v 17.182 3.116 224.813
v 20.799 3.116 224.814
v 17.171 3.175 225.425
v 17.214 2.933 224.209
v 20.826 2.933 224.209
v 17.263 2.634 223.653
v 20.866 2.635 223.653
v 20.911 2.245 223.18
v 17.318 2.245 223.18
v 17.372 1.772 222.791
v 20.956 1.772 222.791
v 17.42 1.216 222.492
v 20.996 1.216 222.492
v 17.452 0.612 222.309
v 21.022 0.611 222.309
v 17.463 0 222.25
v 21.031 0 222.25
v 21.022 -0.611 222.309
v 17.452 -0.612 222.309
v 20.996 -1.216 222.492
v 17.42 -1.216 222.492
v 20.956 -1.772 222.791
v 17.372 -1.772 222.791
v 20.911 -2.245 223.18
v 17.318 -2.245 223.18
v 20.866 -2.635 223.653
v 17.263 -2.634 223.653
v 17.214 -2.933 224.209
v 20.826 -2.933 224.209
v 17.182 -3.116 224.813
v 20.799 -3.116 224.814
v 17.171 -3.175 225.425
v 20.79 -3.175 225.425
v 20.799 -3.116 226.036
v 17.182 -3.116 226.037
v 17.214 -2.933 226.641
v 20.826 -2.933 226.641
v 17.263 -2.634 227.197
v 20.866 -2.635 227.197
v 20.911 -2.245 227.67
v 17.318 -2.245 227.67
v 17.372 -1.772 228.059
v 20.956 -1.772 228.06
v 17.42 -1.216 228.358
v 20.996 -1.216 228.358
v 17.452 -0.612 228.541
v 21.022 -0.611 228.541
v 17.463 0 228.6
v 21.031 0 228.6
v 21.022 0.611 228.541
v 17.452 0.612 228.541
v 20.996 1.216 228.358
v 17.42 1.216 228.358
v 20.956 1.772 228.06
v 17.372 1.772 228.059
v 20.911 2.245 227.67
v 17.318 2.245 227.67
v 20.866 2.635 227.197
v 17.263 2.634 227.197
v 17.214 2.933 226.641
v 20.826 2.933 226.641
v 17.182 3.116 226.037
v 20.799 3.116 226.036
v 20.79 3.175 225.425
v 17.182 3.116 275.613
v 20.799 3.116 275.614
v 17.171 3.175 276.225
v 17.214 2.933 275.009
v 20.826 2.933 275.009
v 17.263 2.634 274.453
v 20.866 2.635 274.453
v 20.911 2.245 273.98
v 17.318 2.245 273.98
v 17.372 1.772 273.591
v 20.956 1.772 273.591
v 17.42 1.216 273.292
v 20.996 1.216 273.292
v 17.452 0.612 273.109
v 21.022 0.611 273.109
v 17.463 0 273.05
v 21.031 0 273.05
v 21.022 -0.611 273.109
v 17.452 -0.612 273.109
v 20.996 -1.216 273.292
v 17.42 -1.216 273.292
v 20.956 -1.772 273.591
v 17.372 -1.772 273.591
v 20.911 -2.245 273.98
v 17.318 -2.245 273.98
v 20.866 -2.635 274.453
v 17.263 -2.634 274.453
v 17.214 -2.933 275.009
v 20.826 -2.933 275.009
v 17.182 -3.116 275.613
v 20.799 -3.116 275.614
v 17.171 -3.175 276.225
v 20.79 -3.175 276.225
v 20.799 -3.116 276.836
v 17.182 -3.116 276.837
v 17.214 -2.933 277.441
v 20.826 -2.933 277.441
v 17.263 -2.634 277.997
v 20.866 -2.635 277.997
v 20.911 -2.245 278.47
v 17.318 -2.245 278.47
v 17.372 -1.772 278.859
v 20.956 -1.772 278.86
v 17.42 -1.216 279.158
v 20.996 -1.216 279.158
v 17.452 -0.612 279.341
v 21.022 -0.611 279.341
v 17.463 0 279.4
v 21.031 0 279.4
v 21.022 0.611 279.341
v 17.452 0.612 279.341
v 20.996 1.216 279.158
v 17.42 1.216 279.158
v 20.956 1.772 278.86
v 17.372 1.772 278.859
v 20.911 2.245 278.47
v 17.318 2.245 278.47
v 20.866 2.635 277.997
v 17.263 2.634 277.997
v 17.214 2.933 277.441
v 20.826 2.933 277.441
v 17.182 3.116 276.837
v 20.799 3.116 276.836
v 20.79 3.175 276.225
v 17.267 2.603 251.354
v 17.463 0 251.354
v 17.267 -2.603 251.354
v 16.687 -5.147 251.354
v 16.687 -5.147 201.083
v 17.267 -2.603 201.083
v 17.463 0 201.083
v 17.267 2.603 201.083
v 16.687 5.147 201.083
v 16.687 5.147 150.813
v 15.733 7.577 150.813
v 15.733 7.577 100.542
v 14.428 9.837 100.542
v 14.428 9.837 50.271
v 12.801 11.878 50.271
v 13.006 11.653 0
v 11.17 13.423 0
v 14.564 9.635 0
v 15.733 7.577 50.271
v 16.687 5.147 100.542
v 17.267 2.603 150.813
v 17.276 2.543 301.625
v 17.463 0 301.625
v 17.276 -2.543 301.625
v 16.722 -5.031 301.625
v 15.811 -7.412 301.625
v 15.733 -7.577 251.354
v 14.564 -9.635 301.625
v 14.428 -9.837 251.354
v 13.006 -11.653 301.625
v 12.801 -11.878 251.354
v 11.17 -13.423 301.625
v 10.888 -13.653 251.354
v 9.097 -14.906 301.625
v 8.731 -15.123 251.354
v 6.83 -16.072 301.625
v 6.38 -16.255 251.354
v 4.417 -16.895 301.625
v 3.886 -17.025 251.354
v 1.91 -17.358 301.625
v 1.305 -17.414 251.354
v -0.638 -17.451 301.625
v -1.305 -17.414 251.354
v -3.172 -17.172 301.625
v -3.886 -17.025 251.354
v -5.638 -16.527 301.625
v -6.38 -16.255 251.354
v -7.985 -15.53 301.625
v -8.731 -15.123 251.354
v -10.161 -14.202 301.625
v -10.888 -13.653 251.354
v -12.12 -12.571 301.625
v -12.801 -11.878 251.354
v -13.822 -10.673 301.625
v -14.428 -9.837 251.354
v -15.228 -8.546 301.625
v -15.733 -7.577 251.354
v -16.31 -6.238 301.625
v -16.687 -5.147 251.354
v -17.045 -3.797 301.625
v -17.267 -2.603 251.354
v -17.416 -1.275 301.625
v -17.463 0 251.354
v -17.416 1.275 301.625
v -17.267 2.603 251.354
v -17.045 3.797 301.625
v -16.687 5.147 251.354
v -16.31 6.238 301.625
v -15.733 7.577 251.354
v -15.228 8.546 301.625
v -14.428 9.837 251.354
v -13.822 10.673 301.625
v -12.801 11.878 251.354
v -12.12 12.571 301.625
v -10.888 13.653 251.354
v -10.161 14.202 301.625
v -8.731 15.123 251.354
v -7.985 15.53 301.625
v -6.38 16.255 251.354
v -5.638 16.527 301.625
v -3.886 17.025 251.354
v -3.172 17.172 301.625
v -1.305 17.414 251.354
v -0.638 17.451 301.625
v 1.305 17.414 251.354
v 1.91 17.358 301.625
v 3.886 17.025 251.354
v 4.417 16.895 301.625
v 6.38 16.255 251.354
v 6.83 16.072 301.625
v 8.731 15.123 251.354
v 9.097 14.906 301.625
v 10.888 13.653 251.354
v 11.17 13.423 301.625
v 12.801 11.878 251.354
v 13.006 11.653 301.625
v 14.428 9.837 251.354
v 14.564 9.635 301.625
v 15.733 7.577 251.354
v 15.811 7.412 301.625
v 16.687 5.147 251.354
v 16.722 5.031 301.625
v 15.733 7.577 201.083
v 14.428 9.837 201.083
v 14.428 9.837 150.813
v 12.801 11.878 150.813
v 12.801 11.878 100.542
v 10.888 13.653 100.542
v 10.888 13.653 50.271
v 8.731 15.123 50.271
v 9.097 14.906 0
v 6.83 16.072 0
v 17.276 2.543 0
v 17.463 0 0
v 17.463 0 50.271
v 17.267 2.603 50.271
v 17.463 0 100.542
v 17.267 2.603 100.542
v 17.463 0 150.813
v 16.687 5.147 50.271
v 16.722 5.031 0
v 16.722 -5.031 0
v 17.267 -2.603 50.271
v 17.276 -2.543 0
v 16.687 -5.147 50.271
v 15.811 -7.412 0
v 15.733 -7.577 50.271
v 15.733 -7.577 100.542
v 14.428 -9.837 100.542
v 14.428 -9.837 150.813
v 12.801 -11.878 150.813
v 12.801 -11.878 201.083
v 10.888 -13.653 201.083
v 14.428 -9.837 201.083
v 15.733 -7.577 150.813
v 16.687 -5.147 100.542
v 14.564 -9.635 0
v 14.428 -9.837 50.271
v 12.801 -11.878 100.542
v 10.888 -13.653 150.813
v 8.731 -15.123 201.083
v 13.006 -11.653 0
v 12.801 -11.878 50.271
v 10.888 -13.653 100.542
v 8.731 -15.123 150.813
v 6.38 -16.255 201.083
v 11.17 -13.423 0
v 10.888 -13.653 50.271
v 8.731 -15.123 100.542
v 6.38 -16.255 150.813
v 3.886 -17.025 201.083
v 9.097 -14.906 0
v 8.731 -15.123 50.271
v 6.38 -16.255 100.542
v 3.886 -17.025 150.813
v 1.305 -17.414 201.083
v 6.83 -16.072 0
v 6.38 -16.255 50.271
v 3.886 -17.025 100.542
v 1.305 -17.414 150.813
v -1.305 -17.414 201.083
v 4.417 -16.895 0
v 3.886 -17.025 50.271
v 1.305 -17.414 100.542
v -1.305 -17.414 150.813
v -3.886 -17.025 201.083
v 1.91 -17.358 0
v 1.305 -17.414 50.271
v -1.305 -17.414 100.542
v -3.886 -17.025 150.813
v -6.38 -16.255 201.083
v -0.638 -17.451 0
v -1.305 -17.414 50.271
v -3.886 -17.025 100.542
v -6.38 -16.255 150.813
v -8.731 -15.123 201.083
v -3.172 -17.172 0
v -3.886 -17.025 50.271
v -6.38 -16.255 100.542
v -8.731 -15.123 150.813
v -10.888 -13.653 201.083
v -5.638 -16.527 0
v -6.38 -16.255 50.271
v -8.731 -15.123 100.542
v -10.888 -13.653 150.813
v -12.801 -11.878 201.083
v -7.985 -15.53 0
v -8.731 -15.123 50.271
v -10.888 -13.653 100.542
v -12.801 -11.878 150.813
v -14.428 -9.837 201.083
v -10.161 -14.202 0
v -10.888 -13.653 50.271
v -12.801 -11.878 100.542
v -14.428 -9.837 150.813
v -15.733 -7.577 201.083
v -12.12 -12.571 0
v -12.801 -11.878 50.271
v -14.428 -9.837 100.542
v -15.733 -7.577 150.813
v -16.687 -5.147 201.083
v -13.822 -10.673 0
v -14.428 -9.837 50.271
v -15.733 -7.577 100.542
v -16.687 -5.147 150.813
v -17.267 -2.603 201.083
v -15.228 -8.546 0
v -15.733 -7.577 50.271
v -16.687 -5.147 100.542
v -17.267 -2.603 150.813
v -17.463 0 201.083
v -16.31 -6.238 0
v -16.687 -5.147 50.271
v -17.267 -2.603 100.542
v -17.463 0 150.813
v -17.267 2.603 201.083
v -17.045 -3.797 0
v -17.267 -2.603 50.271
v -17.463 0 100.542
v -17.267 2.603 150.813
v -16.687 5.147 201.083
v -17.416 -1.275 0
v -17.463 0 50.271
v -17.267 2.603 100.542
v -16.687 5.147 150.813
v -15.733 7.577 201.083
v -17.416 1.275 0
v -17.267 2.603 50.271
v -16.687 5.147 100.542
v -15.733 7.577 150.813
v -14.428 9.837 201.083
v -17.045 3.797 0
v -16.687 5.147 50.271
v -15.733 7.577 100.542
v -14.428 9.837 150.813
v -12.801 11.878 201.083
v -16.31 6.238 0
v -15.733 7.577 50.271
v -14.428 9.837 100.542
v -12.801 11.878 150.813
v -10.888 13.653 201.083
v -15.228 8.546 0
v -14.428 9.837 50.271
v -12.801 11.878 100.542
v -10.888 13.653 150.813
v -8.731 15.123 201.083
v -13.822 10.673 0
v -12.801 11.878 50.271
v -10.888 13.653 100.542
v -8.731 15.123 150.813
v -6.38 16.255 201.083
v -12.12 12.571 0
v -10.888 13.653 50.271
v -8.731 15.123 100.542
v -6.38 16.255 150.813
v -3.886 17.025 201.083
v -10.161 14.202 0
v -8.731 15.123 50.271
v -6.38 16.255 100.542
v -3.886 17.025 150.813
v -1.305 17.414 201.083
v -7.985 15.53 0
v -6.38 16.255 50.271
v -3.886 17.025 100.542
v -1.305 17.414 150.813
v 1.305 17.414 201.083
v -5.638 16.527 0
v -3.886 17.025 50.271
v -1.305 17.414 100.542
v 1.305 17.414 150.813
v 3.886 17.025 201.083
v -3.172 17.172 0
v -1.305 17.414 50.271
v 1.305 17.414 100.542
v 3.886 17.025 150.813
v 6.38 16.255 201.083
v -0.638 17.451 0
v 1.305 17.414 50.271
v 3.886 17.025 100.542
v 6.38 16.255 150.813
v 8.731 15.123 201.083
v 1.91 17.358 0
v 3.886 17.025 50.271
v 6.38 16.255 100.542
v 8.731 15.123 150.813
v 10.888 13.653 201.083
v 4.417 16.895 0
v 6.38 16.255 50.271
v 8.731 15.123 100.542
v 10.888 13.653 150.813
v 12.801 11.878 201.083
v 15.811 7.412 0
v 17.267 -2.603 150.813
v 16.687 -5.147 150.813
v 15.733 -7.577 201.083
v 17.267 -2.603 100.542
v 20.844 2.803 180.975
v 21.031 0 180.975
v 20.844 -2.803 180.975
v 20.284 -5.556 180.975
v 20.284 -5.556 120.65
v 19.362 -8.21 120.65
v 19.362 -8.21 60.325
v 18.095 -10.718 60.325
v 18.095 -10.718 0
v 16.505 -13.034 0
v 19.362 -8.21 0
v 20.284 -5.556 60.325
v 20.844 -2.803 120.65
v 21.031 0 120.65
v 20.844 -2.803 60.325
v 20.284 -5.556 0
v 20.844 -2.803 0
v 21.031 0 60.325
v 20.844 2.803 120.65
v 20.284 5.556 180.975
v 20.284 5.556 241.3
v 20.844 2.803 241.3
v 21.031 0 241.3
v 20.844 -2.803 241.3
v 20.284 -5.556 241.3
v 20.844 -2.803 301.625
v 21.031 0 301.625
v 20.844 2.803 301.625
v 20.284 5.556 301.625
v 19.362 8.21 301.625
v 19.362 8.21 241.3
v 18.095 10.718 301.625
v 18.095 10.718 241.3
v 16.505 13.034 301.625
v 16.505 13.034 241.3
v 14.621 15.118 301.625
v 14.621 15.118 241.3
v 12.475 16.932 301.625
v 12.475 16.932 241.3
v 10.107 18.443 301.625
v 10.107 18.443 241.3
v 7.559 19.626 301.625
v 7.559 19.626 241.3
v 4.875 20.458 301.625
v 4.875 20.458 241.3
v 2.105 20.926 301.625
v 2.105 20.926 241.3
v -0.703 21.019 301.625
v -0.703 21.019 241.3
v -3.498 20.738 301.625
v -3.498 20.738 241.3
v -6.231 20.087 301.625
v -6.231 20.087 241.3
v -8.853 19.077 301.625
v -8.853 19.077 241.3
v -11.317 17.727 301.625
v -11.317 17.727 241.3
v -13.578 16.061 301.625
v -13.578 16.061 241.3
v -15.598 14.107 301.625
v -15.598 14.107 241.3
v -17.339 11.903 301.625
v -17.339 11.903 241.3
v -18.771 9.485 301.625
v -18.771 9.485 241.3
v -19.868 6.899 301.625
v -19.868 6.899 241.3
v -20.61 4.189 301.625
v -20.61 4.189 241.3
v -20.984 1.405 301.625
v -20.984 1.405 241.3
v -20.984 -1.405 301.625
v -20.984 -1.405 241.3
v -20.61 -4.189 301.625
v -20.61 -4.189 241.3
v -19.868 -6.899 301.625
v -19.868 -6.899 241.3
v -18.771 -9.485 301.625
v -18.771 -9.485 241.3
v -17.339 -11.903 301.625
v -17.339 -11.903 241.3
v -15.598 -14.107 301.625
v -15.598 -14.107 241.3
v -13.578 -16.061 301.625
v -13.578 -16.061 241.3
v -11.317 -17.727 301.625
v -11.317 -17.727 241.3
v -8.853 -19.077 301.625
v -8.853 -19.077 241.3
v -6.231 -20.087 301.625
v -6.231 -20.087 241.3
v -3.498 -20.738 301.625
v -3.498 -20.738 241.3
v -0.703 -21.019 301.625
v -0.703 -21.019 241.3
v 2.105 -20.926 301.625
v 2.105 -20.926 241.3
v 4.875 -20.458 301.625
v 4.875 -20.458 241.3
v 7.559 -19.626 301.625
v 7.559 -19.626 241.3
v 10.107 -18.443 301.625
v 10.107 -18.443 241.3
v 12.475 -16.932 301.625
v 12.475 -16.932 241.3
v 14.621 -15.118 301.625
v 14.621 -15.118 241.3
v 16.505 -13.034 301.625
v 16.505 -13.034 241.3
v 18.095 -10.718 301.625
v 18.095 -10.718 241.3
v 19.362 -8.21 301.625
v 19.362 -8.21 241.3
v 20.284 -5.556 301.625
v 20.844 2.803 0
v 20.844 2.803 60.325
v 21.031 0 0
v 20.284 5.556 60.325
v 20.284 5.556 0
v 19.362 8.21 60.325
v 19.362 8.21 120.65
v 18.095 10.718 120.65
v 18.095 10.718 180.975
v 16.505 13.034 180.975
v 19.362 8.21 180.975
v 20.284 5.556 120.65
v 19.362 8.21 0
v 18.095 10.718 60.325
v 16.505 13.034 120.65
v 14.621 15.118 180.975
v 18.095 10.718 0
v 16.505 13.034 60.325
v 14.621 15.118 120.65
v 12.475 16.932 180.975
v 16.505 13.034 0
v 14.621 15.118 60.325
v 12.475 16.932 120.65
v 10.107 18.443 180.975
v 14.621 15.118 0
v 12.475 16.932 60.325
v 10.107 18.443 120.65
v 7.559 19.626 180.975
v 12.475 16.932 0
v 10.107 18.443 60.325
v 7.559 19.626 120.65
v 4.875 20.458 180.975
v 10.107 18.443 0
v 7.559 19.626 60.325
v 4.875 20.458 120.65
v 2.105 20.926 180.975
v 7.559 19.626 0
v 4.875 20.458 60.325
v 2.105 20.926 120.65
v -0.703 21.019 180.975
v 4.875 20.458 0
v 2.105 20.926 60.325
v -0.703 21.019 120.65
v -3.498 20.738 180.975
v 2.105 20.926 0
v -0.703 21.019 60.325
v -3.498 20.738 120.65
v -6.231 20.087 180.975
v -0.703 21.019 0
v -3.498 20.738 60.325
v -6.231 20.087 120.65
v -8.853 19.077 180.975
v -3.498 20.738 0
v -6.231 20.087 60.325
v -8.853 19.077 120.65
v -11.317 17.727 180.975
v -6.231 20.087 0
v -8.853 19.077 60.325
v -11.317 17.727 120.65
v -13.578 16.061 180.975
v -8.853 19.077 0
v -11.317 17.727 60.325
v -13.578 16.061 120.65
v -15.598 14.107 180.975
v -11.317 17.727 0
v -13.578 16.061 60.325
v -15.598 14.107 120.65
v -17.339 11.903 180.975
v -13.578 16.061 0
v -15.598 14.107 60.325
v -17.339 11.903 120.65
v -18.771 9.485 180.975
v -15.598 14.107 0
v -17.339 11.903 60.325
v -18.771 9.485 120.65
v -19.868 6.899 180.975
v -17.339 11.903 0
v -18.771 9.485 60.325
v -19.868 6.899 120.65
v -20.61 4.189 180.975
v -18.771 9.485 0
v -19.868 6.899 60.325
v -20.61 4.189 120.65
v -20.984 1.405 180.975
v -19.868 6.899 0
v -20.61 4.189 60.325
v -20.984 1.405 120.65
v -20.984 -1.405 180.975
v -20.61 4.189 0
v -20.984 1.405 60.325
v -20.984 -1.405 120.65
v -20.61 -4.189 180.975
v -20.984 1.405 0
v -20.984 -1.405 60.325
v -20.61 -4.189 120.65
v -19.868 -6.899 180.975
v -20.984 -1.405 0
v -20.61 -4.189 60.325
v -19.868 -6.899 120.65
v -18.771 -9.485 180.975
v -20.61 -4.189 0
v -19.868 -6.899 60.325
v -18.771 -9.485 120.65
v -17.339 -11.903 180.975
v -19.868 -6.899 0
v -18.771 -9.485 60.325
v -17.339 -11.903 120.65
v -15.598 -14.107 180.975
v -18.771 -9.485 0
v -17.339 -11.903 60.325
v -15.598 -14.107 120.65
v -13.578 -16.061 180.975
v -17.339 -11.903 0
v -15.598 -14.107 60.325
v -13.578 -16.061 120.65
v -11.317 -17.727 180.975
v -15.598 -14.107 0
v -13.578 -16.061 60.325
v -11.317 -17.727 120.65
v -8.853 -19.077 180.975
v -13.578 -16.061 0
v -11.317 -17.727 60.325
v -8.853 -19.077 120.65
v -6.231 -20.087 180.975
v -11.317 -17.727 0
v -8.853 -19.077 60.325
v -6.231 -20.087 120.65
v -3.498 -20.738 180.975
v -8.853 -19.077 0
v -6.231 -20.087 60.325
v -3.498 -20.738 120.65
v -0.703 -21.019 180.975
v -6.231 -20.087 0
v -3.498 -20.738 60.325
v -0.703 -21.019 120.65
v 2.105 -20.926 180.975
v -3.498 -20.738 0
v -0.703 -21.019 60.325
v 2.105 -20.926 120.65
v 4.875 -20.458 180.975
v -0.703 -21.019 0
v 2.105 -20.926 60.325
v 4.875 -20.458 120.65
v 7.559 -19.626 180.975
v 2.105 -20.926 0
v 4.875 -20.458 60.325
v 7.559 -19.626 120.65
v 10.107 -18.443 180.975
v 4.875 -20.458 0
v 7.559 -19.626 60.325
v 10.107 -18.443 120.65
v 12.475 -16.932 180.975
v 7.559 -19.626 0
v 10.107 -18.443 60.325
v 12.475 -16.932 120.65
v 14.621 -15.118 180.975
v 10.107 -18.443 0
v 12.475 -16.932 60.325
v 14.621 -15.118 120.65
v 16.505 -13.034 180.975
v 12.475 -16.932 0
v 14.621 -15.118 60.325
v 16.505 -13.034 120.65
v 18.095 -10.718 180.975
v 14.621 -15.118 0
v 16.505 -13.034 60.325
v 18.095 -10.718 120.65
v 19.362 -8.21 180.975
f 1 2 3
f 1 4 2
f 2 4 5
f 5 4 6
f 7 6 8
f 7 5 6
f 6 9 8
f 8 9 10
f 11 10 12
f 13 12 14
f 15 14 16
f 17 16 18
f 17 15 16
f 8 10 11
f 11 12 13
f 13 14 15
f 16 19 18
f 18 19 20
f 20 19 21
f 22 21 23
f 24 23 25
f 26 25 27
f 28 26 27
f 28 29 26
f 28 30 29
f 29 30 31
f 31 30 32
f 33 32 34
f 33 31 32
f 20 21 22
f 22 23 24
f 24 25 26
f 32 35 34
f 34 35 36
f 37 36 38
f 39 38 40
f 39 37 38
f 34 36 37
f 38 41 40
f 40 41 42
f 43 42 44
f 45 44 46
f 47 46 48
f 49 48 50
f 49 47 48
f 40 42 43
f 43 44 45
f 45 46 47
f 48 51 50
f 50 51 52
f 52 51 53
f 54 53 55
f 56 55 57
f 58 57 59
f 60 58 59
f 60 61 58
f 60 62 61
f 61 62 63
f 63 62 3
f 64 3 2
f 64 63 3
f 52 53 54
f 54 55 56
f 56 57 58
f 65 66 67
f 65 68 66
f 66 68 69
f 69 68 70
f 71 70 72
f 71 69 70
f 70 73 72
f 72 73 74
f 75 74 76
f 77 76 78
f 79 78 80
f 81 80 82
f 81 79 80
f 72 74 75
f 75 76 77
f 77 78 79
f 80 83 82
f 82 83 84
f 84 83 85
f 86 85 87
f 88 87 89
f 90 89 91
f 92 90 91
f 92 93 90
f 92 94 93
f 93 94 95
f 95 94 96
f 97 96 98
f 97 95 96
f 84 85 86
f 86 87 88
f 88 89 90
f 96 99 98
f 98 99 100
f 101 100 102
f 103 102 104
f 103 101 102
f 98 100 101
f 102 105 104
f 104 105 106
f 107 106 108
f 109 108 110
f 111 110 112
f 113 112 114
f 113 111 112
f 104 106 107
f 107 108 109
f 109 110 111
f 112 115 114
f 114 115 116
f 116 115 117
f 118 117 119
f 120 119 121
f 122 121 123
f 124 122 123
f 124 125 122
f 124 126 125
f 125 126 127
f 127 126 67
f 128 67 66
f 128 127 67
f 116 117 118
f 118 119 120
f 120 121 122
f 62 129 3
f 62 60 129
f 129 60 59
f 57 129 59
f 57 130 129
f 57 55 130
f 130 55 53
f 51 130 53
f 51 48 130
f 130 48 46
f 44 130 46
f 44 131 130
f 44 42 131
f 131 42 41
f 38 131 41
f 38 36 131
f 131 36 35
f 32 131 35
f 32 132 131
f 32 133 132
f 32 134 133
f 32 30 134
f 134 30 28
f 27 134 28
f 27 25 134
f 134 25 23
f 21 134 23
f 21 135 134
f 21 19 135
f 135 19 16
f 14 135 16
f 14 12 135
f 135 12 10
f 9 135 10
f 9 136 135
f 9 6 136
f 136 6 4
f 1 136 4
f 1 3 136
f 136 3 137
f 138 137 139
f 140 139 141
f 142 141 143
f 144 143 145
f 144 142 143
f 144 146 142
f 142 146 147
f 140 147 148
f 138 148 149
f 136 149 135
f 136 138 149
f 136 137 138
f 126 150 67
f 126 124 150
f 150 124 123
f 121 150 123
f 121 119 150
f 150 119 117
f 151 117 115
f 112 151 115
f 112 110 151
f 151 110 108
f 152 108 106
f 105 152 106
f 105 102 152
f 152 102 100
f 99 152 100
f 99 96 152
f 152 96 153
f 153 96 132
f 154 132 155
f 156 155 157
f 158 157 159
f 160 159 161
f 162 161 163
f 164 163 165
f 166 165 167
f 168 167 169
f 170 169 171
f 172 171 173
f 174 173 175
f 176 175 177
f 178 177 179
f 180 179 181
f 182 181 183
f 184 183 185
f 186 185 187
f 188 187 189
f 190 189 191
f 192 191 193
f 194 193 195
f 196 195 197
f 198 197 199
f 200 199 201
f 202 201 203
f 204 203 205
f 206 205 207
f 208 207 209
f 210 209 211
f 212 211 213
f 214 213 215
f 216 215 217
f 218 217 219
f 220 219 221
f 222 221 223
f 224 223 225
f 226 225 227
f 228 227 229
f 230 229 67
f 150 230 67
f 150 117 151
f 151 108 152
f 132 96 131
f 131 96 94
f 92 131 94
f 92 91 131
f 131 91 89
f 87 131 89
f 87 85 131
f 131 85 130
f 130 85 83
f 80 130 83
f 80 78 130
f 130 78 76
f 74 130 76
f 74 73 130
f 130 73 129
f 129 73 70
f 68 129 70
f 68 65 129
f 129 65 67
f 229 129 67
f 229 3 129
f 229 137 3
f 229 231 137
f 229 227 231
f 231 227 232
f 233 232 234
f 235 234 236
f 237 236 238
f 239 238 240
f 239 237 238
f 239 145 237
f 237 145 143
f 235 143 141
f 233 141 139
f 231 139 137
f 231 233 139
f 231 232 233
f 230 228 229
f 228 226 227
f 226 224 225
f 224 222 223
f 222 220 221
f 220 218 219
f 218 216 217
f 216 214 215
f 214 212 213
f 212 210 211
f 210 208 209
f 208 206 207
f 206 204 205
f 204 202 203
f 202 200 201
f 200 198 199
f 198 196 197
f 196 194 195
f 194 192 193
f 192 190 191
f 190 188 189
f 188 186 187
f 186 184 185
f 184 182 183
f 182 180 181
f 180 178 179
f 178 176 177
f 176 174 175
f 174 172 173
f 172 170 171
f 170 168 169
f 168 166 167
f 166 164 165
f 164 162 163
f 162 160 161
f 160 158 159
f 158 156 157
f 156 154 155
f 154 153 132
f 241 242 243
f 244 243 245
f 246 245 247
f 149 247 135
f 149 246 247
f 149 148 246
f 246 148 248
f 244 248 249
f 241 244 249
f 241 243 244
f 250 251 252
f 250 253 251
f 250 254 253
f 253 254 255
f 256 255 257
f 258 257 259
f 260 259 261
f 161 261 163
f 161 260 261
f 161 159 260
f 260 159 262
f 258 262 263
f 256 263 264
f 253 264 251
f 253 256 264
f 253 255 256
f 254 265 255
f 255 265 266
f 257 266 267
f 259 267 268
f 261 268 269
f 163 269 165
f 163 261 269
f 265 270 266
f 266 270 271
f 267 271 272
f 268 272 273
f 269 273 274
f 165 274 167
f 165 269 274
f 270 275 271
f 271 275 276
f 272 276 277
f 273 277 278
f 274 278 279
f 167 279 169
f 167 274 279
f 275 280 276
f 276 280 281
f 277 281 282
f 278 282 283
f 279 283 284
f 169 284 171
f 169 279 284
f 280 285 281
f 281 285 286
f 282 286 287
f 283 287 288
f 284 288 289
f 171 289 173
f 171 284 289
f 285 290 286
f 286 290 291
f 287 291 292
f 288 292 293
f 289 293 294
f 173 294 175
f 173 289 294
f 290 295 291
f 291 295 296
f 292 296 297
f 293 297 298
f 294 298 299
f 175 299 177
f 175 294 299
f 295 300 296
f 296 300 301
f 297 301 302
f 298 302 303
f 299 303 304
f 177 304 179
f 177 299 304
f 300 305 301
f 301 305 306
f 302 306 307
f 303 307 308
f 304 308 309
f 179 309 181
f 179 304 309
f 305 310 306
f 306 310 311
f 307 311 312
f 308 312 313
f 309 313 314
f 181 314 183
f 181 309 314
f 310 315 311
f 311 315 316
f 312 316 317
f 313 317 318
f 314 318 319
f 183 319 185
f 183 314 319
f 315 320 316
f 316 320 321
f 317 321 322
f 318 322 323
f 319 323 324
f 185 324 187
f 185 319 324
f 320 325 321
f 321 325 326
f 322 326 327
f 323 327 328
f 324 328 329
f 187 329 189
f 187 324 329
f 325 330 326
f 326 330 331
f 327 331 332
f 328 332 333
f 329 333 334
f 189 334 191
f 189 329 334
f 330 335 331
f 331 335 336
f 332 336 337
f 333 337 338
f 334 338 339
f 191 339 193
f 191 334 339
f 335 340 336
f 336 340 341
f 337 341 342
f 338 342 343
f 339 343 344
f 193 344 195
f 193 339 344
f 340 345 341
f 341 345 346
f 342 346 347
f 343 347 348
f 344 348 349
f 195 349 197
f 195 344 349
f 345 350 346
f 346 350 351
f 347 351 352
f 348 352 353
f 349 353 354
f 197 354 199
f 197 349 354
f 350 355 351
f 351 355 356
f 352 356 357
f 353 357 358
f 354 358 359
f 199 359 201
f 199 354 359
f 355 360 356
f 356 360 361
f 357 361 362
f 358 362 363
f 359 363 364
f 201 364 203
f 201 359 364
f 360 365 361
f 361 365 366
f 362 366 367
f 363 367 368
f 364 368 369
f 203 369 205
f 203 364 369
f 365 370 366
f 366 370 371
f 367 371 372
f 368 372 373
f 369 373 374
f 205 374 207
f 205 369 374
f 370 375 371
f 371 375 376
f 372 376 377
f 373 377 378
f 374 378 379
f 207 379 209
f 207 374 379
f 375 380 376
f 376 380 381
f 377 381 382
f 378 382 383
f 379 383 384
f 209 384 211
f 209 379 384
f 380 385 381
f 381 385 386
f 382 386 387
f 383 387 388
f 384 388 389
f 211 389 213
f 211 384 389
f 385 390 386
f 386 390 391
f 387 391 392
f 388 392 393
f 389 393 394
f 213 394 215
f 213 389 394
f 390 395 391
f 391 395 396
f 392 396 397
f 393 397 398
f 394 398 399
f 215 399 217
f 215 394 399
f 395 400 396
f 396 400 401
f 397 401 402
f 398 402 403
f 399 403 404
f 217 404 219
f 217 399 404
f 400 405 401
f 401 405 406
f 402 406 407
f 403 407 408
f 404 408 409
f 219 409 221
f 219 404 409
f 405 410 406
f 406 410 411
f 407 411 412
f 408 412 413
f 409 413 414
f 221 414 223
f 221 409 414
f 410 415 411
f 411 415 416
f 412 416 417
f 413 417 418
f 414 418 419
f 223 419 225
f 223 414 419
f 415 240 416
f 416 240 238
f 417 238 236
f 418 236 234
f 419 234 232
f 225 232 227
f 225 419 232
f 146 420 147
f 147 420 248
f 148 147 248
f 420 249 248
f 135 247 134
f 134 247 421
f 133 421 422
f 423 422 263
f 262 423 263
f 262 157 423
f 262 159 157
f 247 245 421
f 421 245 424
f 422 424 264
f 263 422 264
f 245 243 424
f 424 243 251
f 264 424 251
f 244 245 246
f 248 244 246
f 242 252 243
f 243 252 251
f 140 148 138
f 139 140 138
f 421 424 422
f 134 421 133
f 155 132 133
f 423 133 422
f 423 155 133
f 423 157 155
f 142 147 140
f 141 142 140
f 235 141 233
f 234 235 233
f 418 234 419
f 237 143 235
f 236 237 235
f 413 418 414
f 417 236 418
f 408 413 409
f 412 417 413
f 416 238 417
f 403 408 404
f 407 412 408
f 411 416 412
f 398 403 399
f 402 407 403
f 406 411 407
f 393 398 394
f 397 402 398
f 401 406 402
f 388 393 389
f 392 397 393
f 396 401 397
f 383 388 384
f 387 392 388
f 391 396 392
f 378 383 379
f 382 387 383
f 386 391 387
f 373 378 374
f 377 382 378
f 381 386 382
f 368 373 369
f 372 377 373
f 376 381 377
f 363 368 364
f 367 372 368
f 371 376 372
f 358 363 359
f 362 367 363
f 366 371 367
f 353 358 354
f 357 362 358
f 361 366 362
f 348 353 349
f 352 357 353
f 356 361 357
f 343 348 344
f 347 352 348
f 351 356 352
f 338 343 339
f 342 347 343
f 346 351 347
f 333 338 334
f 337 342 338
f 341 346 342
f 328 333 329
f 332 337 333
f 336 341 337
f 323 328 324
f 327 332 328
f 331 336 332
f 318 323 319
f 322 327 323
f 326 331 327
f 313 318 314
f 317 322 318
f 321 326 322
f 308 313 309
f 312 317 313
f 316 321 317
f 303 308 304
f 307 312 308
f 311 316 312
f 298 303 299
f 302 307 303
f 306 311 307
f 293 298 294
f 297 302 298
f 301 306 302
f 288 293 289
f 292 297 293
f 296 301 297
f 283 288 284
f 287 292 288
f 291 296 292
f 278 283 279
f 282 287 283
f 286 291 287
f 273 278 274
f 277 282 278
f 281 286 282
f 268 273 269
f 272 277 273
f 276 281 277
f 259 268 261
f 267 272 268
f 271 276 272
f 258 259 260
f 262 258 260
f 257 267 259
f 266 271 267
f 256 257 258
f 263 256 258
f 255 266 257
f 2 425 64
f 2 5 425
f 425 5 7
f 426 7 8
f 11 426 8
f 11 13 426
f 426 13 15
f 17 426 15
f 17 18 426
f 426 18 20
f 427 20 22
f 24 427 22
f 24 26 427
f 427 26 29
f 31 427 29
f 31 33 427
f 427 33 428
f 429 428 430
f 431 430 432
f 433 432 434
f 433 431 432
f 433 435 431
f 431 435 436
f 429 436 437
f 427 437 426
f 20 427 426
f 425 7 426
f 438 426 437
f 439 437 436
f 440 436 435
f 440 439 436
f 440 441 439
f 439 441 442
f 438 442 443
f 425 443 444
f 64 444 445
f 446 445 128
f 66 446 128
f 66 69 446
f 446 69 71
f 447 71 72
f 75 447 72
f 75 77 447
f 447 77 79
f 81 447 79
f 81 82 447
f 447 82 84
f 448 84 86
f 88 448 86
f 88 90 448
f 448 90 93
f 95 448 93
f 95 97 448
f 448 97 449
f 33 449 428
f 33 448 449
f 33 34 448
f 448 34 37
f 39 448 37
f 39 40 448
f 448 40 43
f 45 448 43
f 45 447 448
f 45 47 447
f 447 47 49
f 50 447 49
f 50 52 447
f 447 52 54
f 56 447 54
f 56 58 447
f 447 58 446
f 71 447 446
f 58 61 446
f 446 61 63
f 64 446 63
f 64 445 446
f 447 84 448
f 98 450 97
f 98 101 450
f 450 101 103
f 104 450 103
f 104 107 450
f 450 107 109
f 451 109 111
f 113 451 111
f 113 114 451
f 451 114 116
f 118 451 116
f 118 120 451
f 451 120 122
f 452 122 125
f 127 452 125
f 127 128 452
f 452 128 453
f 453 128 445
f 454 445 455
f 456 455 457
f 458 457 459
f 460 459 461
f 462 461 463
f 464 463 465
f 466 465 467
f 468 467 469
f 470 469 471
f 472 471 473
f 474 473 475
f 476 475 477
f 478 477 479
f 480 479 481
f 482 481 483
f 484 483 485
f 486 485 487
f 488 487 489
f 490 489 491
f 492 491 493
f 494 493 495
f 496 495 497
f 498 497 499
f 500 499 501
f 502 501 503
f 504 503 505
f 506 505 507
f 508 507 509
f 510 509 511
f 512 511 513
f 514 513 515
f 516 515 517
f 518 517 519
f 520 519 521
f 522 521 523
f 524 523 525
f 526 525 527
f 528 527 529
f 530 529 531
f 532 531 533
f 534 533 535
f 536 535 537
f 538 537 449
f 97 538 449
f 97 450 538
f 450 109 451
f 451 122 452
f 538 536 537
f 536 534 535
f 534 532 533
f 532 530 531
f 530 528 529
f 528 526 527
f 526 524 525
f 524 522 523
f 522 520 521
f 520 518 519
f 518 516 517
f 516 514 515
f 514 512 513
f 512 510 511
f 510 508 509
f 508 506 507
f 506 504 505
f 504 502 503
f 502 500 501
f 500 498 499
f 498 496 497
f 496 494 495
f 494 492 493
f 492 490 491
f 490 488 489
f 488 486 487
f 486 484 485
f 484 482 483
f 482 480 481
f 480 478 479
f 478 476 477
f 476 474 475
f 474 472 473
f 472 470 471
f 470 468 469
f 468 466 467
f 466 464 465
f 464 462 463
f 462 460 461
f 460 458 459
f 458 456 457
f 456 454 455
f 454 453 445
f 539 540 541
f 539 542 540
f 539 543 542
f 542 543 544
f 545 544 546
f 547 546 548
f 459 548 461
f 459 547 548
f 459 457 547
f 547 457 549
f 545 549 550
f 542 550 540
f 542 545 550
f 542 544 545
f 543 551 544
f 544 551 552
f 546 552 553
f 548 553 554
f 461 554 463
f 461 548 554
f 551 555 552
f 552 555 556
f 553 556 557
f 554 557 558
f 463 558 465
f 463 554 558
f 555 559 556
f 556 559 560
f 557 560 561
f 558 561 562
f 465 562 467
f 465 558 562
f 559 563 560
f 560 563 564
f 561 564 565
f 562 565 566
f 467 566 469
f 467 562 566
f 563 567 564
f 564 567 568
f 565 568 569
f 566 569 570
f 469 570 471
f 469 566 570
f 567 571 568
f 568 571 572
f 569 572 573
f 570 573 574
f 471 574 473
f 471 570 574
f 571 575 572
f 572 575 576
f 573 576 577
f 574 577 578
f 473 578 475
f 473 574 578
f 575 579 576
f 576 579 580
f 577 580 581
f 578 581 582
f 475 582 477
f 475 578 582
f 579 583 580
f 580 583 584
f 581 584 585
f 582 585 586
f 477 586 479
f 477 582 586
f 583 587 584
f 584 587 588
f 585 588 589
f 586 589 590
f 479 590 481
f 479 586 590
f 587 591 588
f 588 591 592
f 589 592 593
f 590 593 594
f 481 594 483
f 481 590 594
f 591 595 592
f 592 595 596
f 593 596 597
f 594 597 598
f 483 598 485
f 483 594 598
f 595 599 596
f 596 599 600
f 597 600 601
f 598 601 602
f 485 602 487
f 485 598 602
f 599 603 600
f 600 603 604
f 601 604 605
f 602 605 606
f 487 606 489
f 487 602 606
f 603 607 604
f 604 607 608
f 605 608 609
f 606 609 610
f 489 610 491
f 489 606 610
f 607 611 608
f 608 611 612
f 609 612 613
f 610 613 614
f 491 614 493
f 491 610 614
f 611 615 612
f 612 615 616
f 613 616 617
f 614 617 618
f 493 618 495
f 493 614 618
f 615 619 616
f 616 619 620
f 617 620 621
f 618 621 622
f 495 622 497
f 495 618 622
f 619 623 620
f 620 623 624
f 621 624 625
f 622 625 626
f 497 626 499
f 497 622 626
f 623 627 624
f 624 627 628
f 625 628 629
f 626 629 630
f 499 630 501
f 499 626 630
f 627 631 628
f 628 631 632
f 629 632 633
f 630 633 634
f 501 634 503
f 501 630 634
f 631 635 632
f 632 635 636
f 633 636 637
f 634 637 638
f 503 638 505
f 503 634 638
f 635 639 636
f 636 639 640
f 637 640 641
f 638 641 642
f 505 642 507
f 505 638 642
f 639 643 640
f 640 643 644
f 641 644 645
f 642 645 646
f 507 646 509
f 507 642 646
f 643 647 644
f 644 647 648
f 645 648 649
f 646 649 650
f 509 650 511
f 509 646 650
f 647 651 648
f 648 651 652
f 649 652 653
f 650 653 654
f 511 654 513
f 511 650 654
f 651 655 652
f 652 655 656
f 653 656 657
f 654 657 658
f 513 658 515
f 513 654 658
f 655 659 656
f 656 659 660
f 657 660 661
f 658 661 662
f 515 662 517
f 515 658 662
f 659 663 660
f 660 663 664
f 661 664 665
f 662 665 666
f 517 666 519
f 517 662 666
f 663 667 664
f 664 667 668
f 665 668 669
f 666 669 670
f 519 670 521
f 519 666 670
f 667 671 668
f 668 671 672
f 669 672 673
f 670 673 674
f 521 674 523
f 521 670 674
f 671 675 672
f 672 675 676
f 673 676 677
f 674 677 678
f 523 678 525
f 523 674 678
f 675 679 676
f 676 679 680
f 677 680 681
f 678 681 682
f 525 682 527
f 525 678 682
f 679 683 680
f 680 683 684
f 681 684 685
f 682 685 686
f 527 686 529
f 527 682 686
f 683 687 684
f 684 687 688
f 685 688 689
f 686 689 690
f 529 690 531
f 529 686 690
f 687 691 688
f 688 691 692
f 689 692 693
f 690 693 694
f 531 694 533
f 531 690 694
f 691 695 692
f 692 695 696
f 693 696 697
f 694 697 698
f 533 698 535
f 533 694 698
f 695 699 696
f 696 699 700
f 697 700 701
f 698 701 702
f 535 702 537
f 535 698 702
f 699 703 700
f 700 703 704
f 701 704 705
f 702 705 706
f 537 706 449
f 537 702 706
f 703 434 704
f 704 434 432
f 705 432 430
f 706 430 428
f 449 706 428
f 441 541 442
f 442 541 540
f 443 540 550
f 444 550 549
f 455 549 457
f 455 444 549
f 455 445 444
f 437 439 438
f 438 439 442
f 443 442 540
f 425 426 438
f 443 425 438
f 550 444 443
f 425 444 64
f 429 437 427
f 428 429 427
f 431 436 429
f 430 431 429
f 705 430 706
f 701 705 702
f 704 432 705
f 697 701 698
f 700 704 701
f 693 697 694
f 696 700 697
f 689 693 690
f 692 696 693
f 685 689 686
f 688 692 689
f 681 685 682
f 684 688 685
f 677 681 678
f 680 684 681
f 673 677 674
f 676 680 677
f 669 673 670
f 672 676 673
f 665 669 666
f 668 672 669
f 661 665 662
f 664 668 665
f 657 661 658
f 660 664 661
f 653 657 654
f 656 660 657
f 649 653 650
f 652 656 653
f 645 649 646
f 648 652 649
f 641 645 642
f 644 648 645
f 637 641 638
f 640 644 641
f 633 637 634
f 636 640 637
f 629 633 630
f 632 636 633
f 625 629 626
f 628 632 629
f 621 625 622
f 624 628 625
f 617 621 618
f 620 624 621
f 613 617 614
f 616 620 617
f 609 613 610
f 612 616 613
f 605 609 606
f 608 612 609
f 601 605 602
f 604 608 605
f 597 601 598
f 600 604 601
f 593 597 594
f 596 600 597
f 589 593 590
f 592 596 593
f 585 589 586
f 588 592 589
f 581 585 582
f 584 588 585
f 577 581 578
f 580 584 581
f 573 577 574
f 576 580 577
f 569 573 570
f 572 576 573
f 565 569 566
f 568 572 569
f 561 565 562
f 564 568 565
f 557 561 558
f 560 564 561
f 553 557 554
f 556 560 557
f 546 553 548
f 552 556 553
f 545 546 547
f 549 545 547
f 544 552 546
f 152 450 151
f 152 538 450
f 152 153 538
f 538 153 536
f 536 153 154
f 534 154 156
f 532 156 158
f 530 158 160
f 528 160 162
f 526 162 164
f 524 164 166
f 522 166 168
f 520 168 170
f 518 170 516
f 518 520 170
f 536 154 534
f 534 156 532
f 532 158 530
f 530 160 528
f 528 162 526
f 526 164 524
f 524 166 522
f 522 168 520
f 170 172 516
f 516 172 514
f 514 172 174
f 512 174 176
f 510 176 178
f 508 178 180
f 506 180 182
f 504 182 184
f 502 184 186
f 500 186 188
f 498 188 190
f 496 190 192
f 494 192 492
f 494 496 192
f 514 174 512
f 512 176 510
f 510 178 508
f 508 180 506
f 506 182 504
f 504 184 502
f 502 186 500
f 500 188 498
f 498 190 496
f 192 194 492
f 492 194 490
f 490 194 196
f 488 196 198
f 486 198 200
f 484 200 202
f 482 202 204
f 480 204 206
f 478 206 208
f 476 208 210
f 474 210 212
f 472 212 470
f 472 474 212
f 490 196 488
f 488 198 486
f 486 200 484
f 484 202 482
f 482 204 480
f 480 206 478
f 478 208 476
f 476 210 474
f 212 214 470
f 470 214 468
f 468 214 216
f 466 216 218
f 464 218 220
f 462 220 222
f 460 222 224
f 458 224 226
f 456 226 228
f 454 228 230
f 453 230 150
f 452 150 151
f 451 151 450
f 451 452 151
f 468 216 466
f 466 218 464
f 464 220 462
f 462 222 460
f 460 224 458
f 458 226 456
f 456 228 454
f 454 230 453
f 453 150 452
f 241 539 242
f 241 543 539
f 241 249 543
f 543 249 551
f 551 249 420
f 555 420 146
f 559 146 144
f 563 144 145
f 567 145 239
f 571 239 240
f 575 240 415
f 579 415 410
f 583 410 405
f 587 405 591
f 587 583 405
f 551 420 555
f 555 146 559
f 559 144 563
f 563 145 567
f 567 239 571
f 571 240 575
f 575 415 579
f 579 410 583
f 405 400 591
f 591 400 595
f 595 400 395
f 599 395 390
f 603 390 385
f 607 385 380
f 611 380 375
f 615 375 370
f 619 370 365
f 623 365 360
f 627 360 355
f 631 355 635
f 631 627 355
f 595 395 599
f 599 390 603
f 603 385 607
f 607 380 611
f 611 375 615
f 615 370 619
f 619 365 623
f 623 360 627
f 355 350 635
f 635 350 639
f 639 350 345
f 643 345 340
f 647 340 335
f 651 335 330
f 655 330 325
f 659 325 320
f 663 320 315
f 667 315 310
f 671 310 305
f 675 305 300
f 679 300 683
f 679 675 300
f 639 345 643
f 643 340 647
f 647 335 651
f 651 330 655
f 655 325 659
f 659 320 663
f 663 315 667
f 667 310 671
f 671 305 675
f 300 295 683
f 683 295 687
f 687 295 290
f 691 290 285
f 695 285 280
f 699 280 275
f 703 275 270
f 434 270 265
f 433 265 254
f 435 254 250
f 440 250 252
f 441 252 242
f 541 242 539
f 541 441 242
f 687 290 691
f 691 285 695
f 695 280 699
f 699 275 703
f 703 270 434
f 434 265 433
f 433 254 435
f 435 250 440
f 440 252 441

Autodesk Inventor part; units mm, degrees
ref_plane "XZ Plane" through (0, 0, 0) normal (0, 1, 0) x (-1, 0, 0)
ref_plane "XY Plane" through (0, 0, 0) normal (0, 0, 1) x (1, 0, 0)
sketch "Sketch1" plane through (0, 0, 0) normal (0, 0, 1) x (1, 0, 0)
  circle A0 centre (0, 0) radius 21.0312
  circle A1 centre (0, 0) radius 17.4625
  dimension "d0" = 42.0624
  dimension "d1" = 34.925
extrude "Extrusion1" add sketch "Sketch1" along normal blind 301.625
ref_plane "Work Plane1" through (0, 0, 0) normal (1, 0, 0) x (0, 0, 1)
sketch "Sketch2" plane through (0, 0, 0) normal (1, 0, 0) x (0, 0, 1)
  line L0 (0, -21.0312) -> (301.625, -21.0312) projected
  line L1 (0, 21.0312) -> (301.625, 21.0312) projected
  line L2 (301.625, 17.4625) -> (301.625, -17.4625) projected
  line L3 (301.625, 21.0312) -> (301.625, -21.0312) projected
  line L4 (-60.325, 0) -> (361.95, 0) projected
  circle A0 centre (276.225, 0) radius 3.175
  dimension "d5" = 25.4
  dimension "d6" = 6.35
extrude "Extrusion2" cut sketch "Sketch2" along normal blind 50.8
pattern_linear "Rectangular Pattern1" count 2 spacing 50.8 along (0, 0, -1) of "Extrusion2"
properties part number "FE-00006-02"
